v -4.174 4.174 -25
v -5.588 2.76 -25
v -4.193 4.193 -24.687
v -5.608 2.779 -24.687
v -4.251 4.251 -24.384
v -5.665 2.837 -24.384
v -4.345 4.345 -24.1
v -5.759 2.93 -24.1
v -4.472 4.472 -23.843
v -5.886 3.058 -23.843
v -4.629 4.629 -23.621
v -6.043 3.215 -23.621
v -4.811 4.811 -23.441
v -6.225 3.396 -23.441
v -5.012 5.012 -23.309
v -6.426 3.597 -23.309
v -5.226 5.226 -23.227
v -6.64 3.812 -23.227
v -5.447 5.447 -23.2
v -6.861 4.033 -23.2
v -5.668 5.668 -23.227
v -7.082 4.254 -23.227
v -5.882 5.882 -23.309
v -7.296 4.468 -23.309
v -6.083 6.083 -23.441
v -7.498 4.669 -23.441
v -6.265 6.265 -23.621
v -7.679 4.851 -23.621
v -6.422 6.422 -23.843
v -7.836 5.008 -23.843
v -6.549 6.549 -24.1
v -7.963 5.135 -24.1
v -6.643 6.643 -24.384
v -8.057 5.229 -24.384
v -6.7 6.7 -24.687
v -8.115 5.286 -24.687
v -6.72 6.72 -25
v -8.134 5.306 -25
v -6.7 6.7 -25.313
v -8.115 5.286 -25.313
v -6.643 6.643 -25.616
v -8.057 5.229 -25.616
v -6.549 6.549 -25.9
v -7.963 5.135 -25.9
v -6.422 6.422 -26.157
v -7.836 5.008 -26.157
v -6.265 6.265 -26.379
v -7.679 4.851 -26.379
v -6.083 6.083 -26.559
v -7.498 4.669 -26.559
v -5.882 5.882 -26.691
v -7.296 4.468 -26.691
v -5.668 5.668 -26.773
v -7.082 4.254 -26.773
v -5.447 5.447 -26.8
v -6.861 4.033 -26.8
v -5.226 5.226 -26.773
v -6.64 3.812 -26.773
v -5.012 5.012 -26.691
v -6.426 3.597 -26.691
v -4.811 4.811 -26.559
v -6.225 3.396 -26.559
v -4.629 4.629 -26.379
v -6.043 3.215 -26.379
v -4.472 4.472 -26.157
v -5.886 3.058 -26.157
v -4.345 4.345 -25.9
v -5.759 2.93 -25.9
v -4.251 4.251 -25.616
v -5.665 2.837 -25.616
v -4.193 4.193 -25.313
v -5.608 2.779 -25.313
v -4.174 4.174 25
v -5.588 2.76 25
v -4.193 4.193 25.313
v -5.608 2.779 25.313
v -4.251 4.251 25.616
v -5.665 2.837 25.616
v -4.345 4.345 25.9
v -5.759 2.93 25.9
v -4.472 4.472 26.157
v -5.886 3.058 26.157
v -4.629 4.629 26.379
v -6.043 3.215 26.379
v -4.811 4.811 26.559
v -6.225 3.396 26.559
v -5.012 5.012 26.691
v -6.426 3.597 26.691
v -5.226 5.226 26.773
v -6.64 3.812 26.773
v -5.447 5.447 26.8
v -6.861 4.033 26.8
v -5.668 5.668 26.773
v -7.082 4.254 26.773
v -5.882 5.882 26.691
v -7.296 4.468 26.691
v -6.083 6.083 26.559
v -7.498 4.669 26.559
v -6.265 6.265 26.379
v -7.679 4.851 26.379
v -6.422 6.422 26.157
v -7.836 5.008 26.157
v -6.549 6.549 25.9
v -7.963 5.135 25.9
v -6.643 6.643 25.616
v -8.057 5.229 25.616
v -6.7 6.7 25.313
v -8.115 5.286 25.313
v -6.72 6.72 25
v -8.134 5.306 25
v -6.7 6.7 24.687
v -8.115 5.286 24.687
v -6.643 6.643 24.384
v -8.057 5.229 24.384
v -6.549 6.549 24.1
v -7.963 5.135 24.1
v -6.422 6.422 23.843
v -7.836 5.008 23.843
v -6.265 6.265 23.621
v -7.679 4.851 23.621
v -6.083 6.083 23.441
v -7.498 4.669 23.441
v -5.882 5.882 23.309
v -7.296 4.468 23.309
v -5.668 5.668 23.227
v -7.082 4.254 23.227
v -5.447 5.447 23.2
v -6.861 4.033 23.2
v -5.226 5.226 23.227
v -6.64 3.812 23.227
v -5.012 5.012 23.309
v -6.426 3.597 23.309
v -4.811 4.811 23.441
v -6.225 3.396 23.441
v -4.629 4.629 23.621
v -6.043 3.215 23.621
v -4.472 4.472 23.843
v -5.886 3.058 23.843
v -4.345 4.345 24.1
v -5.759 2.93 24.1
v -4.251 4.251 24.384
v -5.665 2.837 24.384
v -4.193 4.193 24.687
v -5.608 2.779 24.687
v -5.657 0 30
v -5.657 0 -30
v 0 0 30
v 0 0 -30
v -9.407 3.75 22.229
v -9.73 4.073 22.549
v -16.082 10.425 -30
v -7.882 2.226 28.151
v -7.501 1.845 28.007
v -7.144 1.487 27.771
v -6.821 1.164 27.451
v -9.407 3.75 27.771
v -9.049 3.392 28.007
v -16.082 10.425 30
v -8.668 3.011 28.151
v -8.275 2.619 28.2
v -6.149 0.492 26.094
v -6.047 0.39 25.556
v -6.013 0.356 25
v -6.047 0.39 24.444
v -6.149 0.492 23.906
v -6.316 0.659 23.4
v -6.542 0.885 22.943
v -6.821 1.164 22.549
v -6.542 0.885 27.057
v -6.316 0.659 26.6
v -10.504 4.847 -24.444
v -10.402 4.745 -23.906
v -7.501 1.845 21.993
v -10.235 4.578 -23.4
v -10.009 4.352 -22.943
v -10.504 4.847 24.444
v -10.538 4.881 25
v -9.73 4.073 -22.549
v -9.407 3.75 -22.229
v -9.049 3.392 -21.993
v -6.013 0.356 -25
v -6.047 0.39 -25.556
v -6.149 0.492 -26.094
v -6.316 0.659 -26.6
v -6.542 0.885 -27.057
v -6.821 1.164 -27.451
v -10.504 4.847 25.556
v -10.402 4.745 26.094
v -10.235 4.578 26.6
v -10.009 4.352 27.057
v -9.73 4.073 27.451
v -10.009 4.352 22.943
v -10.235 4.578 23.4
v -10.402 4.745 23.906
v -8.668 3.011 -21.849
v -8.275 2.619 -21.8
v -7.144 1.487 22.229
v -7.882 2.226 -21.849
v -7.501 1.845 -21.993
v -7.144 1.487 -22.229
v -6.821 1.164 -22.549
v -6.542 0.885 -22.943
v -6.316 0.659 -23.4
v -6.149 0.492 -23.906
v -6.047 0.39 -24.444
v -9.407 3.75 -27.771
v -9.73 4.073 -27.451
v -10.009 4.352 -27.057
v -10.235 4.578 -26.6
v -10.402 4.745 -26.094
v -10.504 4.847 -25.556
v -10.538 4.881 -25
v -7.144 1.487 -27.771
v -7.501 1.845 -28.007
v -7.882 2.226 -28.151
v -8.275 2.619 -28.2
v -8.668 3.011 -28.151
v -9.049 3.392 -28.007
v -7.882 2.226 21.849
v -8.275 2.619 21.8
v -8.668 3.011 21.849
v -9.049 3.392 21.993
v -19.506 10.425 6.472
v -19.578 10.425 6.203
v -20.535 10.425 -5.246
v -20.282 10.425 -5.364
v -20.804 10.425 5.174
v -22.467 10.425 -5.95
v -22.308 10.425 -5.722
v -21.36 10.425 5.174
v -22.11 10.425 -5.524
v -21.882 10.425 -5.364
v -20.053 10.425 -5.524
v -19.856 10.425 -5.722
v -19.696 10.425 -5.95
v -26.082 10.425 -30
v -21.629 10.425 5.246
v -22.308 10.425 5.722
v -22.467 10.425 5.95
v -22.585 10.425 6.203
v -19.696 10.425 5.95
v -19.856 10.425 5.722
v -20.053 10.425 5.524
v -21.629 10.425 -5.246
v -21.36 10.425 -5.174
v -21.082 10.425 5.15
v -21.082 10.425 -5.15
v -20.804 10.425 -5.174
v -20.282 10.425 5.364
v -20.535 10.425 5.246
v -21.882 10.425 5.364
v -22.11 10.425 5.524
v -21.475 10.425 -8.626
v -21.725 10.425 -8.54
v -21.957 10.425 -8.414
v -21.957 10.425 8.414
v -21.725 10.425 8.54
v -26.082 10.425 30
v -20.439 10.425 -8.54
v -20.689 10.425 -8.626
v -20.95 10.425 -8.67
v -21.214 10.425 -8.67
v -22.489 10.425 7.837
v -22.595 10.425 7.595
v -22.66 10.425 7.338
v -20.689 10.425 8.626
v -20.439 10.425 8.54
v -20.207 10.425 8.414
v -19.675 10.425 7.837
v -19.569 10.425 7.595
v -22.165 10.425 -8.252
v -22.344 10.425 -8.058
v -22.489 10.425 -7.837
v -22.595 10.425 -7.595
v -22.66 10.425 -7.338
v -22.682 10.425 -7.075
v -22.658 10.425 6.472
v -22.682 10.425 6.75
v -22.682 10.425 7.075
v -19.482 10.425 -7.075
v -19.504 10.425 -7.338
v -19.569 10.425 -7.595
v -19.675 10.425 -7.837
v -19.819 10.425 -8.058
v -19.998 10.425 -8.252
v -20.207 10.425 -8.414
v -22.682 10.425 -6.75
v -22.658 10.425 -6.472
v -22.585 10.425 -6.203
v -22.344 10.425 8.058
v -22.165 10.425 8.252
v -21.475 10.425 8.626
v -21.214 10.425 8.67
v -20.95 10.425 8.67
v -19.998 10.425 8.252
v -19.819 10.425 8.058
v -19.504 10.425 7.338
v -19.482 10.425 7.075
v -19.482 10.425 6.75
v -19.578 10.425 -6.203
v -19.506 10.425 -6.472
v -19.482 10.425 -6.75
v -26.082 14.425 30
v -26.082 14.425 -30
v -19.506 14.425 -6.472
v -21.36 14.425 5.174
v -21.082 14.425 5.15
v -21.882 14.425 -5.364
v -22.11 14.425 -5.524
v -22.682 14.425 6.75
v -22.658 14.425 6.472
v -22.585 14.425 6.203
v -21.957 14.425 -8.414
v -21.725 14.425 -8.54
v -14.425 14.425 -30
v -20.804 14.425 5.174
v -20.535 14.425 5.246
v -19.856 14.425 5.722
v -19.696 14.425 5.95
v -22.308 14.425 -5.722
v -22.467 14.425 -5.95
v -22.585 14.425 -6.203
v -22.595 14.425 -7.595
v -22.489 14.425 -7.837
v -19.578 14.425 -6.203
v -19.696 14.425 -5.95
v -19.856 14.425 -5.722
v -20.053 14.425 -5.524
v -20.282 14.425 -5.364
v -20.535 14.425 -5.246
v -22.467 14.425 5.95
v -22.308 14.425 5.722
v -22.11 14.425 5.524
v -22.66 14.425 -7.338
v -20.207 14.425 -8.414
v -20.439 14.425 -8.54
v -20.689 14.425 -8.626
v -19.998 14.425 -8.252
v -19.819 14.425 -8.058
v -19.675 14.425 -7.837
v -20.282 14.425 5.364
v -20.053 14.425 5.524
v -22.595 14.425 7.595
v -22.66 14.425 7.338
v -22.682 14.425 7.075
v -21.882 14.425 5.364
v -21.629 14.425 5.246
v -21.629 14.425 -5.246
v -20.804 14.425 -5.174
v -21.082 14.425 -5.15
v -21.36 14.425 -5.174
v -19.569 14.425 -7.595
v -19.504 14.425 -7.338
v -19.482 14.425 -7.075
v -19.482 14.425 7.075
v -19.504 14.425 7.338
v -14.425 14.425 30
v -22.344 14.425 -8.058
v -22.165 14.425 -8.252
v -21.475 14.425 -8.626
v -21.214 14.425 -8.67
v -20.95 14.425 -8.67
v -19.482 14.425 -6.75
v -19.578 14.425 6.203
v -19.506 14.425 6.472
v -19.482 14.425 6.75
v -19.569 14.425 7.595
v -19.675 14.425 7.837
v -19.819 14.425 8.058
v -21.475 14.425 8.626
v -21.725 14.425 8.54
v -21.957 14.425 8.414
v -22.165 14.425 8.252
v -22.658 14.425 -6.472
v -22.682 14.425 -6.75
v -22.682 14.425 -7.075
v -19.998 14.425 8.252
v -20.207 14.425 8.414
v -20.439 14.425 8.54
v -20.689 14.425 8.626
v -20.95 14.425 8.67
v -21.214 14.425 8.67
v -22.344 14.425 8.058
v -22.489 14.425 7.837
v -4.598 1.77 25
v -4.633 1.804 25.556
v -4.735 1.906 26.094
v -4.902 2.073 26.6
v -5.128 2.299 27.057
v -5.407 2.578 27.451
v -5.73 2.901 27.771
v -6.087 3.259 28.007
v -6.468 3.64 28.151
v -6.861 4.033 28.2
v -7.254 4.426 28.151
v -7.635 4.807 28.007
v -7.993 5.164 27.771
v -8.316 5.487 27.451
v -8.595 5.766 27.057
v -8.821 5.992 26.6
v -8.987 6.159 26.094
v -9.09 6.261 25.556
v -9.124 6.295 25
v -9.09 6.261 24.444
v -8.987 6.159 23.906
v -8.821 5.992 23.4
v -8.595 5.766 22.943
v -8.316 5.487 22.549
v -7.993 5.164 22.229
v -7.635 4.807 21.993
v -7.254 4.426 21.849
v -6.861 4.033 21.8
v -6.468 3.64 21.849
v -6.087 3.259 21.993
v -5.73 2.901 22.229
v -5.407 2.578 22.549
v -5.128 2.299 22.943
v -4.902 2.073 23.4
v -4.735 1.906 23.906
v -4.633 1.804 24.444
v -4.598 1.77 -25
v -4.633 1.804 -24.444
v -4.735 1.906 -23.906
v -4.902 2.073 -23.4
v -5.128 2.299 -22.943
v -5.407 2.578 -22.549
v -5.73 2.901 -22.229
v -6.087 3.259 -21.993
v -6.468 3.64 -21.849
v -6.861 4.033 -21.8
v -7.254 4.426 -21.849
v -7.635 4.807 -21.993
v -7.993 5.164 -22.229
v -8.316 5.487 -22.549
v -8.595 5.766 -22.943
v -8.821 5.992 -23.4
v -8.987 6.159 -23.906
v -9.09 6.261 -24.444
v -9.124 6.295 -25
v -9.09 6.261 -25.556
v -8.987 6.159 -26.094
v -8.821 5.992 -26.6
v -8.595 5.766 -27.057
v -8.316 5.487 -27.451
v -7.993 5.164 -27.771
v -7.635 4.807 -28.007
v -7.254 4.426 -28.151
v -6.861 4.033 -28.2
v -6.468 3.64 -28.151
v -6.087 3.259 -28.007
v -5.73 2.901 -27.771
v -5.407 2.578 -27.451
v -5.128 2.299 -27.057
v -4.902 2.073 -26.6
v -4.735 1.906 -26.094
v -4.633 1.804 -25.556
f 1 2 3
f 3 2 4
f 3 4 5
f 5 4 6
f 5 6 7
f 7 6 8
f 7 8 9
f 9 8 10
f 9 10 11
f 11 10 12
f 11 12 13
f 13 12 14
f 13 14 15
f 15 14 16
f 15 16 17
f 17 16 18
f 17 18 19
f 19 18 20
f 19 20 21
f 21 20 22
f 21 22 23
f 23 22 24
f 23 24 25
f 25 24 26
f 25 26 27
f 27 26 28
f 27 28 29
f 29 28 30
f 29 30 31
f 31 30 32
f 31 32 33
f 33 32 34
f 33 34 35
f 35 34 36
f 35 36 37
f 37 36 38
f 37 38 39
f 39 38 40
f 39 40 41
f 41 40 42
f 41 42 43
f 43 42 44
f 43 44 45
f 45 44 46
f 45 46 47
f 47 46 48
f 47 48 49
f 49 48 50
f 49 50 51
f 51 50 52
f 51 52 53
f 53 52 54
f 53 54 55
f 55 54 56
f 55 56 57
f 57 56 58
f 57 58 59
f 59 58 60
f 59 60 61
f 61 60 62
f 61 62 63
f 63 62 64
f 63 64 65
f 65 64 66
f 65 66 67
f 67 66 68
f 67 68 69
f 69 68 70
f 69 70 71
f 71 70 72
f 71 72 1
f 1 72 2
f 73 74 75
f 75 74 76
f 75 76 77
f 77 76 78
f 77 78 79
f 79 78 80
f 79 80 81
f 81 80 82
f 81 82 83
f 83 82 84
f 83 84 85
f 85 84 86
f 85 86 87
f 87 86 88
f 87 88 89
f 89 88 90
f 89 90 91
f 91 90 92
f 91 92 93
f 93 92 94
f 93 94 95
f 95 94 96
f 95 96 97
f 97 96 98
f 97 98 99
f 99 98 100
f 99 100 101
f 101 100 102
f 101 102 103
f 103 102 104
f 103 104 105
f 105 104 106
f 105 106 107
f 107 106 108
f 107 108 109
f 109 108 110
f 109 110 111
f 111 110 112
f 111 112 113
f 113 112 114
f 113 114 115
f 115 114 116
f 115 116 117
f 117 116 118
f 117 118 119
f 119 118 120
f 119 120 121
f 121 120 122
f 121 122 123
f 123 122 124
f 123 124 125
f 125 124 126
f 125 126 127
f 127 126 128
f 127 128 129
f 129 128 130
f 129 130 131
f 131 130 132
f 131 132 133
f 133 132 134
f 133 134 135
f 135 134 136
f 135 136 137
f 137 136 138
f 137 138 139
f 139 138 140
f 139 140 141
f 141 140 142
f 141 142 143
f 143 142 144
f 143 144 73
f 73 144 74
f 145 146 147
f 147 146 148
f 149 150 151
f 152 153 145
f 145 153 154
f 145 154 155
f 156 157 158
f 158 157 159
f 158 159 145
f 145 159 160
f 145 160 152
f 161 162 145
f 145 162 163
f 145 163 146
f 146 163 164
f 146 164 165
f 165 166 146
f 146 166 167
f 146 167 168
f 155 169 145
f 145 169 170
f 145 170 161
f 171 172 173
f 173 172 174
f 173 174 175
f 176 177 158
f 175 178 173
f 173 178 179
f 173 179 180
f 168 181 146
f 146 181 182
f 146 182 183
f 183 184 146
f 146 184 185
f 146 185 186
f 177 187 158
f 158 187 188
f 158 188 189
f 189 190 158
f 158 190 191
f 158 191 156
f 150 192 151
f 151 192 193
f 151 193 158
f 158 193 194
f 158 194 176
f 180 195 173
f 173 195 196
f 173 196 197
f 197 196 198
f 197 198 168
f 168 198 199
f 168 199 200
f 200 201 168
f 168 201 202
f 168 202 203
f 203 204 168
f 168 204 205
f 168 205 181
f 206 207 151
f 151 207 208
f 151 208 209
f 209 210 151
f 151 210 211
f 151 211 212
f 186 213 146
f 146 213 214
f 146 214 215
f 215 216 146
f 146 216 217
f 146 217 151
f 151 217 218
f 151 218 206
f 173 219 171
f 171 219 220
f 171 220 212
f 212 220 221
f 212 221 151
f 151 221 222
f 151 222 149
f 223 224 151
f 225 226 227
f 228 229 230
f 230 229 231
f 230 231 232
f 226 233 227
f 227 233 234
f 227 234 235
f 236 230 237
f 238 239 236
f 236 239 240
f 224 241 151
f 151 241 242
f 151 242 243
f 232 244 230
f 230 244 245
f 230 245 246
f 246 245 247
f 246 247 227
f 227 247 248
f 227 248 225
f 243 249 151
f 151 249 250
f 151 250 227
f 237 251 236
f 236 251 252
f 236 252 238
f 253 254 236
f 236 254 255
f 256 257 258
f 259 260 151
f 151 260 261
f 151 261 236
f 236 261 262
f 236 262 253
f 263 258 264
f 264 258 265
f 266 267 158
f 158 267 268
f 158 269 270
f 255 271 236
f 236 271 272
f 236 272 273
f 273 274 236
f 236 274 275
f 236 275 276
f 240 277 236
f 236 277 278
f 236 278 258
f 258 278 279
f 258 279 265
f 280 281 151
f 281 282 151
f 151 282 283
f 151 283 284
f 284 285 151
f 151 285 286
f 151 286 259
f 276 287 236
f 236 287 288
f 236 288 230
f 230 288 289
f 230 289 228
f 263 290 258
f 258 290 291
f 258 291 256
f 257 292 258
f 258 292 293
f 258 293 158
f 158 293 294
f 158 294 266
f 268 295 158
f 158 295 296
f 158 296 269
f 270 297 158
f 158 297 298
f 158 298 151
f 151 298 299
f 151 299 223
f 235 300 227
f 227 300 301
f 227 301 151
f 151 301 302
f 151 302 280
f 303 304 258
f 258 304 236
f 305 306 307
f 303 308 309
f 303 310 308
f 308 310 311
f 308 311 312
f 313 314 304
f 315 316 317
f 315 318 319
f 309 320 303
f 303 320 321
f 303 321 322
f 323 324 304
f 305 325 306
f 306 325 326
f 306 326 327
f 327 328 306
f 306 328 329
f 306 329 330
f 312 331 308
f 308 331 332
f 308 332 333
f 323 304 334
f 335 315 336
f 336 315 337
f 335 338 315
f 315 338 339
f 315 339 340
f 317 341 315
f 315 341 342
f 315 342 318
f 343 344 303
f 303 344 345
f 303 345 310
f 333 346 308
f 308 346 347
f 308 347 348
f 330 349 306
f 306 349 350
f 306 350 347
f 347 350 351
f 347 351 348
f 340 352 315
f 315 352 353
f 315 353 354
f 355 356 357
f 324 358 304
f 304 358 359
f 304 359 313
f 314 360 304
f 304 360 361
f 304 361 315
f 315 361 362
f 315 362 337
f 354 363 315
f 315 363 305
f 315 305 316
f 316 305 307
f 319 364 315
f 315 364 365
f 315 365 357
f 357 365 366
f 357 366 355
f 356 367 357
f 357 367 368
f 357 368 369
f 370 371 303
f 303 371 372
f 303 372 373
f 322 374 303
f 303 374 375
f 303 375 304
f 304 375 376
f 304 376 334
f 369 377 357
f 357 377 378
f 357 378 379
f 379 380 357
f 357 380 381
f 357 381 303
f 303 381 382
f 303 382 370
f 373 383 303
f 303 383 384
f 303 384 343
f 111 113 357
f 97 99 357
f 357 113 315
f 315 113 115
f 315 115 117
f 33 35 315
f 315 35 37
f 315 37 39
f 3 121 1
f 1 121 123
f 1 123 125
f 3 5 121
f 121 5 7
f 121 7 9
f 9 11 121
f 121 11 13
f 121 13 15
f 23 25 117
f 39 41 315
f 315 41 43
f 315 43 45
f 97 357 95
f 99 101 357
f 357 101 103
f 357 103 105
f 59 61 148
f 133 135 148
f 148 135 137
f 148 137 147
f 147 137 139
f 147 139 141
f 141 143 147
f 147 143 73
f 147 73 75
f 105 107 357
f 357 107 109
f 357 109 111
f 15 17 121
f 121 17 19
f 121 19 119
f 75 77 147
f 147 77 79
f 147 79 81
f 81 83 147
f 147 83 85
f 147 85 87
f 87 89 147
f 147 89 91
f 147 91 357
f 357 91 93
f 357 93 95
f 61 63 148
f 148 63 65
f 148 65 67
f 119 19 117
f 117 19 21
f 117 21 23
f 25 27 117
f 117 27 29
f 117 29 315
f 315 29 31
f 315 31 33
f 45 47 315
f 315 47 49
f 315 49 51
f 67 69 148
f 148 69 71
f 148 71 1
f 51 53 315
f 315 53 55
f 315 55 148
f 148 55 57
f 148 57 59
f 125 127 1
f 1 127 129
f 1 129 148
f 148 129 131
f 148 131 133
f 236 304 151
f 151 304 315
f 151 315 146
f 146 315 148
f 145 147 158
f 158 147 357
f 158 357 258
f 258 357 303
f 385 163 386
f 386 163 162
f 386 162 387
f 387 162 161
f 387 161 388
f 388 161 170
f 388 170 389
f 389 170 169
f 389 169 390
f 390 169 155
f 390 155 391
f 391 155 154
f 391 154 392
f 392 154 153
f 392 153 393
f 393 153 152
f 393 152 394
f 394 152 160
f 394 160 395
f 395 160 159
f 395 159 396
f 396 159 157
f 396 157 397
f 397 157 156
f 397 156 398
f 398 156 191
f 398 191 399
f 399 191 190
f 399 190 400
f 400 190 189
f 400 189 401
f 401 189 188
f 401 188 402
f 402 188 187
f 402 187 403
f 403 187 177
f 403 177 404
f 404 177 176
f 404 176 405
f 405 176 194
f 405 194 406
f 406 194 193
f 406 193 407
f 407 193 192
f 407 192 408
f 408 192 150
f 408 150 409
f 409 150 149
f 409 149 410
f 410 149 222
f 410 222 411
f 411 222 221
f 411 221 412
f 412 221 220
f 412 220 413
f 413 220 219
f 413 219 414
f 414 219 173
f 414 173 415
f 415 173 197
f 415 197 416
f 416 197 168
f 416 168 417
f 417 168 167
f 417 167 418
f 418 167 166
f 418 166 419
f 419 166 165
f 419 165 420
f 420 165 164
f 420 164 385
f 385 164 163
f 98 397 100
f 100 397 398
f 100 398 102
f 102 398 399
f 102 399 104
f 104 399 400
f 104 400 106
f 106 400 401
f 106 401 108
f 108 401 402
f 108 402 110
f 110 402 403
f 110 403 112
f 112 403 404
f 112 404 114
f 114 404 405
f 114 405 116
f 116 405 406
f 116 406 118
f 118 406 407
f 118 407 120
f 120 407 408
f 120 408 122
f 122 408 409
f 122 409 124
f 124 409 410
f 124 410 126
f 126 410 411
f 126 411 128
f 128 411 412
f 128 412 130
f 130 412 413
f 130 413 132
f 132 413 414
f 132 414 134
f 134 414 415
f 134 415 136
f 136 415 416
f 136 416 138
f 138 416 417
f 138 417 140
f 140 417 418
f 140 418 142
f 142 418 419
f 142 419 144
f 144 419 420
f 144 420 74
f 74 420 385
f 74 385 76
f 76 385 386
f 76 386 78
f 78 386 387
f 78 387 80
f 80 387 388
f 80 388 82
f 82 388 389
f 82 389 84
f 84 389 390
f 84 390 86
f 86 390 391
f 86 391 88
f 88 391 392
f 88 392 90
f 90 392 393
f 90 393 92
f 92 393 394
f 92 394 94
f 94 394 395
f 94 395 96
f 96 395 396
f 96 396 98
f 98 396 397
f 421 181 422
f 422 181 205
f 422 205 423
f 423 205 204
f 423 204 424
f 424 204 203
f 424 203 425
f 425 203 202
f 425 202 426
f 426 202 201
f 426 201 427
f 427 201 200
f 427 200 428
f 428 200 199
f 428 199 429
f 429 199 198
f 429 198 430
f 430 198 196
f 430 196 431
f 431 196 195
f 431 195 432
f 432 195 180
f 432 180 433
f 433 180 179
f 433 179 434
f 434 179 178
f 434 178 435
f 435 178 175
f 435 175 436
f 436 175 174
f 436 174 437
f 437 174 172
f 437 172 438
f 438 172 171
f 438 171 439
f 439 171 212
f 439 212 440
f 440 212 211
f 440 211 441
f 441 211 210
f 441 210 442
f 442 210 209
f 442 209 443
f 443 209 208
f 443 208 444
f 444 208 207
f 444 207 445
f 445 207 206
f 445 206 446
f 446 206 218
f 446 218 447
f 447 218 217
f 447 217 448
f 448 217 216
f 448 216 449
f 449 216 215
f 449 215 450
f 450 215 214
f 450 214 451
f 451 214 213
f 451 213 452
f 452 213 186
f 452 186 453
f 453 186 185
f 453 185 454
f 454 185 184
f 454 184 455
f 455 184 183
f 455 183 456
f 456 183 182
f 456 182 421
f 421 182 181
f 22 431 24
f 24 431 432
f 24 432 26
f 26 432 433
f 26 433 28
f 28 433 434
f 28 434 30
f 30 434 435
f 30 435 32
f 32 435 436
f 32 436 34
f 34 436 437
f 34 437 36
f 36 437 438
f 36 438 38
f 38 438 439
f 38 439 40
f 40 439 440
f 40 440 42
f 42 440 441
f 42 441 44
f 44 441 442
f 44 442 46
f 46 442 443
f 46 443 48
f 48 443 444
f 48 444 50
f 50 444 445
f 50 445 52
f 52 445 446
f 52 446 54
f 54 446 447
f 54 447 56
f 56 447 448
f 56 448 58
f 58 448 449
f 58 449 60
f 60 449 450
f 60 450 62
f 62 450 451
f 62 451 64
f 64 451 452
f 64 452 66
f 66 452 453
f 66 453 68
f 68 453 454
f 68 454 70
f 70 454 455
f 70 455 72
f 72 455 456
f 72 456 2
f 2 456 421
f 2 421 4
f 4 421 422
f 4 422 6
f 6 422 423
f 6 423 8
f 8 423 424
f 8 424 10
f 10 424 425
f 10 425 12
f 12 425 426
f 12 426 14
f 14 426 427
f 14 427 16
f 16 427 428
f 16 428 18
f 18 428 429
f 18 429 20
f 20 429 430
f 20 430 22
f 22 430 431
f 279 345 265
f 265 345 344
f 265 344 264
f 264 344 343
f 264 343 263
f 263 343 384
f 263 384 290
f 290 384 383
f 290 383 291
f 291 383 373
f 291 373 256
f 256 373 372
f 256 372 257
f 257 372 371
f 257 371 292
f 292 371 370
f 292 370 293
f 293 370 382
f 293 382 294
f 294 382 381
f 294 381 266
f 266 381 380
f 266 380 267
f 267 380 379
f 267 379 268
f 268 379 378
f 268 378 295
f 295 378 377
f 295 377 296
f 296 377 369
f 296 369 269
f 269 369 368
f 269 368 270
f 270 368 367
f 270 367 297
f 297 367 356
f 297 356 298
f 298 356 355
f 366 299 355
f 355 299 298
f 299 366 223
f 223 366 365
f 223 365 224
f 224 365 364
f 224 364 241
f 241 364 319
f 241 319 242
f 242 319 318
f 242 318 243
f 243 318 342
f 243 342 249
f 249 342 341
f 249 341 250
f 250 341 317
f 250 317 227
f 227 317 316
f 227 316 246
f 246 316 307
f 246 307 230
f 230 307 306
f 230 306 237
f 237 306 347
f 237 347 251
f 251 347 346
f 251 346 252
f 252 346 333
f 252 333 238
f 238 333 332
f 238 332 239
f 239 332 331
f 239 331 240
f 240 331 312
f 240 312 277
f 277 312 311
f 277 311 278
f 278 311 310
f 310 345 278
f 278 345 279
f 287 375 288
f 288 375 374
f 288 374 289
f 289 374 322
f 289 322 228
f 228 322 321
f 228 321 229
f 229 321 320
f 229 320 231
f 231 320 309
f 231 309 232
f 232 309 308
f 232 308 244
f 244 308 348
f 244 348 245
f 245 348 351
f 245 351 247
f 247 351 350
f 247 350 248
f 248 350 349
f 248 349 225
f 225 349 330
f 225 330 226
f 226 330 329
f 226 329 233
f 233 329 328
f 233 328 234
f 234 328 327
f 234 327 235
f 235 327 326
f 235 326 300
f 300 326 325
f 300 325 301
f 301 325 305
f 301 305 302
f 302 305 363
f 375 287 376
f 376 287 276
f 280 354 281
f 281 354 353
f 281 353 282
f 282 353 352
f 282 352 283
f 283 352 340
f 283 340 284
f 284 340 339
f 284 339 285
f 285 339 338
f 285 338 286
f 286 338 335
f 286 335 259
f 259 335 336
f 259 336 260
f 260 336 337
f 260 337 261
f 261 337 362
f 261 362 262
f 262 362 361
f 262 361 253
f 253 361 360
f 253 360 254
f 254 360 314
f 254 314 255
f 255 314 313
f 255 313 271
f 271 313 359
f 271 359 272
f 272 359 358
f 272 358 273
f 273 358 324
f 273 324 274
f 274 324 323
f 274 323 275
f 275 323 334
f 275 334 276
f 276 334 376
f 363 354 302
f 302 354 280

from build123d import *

# Parameters (mm, degrees)
SALIENTE_EXTRUIR1_DEPTH      = 30
SALIENTE_EXTRUIR1_DEPTH_BACK = 30
CROQUIS2_R                   = 1.8
CORTAR_EXTRUIR1_DEPTH        = 4
CROQUIS2_3_R                 = 3.2
CROQUIS2_3_R_2               = 1.8
CORTAR_EXTRUIR2_DEPTH        = 2
CORTAR_EXTRUIR3_DEPTH        = 4


with BuildPart() as part:
    # Croquis1 → Saliente-Extruir1 (new body, two sides)
    with BuildSketch(Plane.XY) as saliente_extruir1_sk:
        Polygon((0, 0), (-14.424978336, 14.424978336), (-26.081832586, 14.424978336), (-26.081832586, 10.424978336), (-16.081832586, 10.424978336), (-5.656854249, 0), align=None)
    extrude(amount=SALIENTE_EXTRUIR1_DEPTH)
    extrude(saliente_extruir1_sk.sketch, amount=-SALIENTE_EXTRUIR1_DEPTH_BACK)

    # Croquis2 → Cortar-Extruir1 (cut)
    with BuildSketch(Plane(origin=(-2.828427125, -2.828427125, 0), x_dir=(-0.707106781, 0.707106781, 0), z_dir=(-0.707106781, -0.707106781, 0))):
        with Locations((7.703145751, -25)):
            Circle(CROQUIS2_R)
        with Locations((7.703145751, 25)):
            Circle(CROQUIS2_R)
    extrude(amount=-CORTAR_EXTRUIR1_DEPTH, mode=Mode.SUBTRACT)

    # Croquis2<3> → Cortar-Extruir2 (cut)
    with BuildSketch(Plane(origin=(-2.828427125, -2.828427125, 0), x_dir=(-0.707106781, 0.707106781, 0), z_dir=(-0.707106781, -0.707106781, 0))):
        with Locations((7.703145751, 25)):
            Circle(CROQUIS2_3_R)
        with Locations((7.703145751, 25)):
            Circle(CROQUIS2_3_R_2, mode=Mode.SUBTRACT)
        with Locations((7.703145751, -25)):
            Circle(CROQUIS2_3_R)
        with Locations((7.703145751, -25)):
            Circle(CROQUIS2_3_R_2, mode=Mode.SUBTRACT)
    extrude(amount=-CORTAR_EXTRUIR2_DEPTH, mode=Mode.SUBTRACT)

    # Croquis3 → Cortar-Extruir3 (cut)
    with BuildSketch(Plane(origin=(0, 14.424978336, 0), x_dir=(1, 0, 0), z_dir=(0, 1, 0))):
        with BuildLine():
            Line((-19.481832586, 7.075), (-19.481832586, 6.75))
            ThreePointArc((-19.481832586, 6.75), (-21.081832586, 5.15), (-22.681832586, 6.75))
            Line((-22.681832586, 6.75), (-22.681832586, 7.075))
            ThreePointArc((-22.681832586, 7.075), (-21.081832586, 8.675), (-19.481832586, 7.075))
        make_face()
        with BuildLine():
            Line((-19.481832586, -7.075), (-19.481832586, -6.75))
            ThreePointArc((-19.481832586, -6.75), (-21.081832586, -5.15), (-22.681832586, -6.75))
            Line((-22.681832586, -6.75), (-22.681832586, -7.075))
            ThreePointArc((-22.681832586, -7.075), (-21.081832586, -8.675), (-19.481832586, -7.075))
        make_face()
    extrude(amount=-CORTAR_EXTRUIR3_DEPTH, mode=Mode.SUBTRACT)


solid = part.part
